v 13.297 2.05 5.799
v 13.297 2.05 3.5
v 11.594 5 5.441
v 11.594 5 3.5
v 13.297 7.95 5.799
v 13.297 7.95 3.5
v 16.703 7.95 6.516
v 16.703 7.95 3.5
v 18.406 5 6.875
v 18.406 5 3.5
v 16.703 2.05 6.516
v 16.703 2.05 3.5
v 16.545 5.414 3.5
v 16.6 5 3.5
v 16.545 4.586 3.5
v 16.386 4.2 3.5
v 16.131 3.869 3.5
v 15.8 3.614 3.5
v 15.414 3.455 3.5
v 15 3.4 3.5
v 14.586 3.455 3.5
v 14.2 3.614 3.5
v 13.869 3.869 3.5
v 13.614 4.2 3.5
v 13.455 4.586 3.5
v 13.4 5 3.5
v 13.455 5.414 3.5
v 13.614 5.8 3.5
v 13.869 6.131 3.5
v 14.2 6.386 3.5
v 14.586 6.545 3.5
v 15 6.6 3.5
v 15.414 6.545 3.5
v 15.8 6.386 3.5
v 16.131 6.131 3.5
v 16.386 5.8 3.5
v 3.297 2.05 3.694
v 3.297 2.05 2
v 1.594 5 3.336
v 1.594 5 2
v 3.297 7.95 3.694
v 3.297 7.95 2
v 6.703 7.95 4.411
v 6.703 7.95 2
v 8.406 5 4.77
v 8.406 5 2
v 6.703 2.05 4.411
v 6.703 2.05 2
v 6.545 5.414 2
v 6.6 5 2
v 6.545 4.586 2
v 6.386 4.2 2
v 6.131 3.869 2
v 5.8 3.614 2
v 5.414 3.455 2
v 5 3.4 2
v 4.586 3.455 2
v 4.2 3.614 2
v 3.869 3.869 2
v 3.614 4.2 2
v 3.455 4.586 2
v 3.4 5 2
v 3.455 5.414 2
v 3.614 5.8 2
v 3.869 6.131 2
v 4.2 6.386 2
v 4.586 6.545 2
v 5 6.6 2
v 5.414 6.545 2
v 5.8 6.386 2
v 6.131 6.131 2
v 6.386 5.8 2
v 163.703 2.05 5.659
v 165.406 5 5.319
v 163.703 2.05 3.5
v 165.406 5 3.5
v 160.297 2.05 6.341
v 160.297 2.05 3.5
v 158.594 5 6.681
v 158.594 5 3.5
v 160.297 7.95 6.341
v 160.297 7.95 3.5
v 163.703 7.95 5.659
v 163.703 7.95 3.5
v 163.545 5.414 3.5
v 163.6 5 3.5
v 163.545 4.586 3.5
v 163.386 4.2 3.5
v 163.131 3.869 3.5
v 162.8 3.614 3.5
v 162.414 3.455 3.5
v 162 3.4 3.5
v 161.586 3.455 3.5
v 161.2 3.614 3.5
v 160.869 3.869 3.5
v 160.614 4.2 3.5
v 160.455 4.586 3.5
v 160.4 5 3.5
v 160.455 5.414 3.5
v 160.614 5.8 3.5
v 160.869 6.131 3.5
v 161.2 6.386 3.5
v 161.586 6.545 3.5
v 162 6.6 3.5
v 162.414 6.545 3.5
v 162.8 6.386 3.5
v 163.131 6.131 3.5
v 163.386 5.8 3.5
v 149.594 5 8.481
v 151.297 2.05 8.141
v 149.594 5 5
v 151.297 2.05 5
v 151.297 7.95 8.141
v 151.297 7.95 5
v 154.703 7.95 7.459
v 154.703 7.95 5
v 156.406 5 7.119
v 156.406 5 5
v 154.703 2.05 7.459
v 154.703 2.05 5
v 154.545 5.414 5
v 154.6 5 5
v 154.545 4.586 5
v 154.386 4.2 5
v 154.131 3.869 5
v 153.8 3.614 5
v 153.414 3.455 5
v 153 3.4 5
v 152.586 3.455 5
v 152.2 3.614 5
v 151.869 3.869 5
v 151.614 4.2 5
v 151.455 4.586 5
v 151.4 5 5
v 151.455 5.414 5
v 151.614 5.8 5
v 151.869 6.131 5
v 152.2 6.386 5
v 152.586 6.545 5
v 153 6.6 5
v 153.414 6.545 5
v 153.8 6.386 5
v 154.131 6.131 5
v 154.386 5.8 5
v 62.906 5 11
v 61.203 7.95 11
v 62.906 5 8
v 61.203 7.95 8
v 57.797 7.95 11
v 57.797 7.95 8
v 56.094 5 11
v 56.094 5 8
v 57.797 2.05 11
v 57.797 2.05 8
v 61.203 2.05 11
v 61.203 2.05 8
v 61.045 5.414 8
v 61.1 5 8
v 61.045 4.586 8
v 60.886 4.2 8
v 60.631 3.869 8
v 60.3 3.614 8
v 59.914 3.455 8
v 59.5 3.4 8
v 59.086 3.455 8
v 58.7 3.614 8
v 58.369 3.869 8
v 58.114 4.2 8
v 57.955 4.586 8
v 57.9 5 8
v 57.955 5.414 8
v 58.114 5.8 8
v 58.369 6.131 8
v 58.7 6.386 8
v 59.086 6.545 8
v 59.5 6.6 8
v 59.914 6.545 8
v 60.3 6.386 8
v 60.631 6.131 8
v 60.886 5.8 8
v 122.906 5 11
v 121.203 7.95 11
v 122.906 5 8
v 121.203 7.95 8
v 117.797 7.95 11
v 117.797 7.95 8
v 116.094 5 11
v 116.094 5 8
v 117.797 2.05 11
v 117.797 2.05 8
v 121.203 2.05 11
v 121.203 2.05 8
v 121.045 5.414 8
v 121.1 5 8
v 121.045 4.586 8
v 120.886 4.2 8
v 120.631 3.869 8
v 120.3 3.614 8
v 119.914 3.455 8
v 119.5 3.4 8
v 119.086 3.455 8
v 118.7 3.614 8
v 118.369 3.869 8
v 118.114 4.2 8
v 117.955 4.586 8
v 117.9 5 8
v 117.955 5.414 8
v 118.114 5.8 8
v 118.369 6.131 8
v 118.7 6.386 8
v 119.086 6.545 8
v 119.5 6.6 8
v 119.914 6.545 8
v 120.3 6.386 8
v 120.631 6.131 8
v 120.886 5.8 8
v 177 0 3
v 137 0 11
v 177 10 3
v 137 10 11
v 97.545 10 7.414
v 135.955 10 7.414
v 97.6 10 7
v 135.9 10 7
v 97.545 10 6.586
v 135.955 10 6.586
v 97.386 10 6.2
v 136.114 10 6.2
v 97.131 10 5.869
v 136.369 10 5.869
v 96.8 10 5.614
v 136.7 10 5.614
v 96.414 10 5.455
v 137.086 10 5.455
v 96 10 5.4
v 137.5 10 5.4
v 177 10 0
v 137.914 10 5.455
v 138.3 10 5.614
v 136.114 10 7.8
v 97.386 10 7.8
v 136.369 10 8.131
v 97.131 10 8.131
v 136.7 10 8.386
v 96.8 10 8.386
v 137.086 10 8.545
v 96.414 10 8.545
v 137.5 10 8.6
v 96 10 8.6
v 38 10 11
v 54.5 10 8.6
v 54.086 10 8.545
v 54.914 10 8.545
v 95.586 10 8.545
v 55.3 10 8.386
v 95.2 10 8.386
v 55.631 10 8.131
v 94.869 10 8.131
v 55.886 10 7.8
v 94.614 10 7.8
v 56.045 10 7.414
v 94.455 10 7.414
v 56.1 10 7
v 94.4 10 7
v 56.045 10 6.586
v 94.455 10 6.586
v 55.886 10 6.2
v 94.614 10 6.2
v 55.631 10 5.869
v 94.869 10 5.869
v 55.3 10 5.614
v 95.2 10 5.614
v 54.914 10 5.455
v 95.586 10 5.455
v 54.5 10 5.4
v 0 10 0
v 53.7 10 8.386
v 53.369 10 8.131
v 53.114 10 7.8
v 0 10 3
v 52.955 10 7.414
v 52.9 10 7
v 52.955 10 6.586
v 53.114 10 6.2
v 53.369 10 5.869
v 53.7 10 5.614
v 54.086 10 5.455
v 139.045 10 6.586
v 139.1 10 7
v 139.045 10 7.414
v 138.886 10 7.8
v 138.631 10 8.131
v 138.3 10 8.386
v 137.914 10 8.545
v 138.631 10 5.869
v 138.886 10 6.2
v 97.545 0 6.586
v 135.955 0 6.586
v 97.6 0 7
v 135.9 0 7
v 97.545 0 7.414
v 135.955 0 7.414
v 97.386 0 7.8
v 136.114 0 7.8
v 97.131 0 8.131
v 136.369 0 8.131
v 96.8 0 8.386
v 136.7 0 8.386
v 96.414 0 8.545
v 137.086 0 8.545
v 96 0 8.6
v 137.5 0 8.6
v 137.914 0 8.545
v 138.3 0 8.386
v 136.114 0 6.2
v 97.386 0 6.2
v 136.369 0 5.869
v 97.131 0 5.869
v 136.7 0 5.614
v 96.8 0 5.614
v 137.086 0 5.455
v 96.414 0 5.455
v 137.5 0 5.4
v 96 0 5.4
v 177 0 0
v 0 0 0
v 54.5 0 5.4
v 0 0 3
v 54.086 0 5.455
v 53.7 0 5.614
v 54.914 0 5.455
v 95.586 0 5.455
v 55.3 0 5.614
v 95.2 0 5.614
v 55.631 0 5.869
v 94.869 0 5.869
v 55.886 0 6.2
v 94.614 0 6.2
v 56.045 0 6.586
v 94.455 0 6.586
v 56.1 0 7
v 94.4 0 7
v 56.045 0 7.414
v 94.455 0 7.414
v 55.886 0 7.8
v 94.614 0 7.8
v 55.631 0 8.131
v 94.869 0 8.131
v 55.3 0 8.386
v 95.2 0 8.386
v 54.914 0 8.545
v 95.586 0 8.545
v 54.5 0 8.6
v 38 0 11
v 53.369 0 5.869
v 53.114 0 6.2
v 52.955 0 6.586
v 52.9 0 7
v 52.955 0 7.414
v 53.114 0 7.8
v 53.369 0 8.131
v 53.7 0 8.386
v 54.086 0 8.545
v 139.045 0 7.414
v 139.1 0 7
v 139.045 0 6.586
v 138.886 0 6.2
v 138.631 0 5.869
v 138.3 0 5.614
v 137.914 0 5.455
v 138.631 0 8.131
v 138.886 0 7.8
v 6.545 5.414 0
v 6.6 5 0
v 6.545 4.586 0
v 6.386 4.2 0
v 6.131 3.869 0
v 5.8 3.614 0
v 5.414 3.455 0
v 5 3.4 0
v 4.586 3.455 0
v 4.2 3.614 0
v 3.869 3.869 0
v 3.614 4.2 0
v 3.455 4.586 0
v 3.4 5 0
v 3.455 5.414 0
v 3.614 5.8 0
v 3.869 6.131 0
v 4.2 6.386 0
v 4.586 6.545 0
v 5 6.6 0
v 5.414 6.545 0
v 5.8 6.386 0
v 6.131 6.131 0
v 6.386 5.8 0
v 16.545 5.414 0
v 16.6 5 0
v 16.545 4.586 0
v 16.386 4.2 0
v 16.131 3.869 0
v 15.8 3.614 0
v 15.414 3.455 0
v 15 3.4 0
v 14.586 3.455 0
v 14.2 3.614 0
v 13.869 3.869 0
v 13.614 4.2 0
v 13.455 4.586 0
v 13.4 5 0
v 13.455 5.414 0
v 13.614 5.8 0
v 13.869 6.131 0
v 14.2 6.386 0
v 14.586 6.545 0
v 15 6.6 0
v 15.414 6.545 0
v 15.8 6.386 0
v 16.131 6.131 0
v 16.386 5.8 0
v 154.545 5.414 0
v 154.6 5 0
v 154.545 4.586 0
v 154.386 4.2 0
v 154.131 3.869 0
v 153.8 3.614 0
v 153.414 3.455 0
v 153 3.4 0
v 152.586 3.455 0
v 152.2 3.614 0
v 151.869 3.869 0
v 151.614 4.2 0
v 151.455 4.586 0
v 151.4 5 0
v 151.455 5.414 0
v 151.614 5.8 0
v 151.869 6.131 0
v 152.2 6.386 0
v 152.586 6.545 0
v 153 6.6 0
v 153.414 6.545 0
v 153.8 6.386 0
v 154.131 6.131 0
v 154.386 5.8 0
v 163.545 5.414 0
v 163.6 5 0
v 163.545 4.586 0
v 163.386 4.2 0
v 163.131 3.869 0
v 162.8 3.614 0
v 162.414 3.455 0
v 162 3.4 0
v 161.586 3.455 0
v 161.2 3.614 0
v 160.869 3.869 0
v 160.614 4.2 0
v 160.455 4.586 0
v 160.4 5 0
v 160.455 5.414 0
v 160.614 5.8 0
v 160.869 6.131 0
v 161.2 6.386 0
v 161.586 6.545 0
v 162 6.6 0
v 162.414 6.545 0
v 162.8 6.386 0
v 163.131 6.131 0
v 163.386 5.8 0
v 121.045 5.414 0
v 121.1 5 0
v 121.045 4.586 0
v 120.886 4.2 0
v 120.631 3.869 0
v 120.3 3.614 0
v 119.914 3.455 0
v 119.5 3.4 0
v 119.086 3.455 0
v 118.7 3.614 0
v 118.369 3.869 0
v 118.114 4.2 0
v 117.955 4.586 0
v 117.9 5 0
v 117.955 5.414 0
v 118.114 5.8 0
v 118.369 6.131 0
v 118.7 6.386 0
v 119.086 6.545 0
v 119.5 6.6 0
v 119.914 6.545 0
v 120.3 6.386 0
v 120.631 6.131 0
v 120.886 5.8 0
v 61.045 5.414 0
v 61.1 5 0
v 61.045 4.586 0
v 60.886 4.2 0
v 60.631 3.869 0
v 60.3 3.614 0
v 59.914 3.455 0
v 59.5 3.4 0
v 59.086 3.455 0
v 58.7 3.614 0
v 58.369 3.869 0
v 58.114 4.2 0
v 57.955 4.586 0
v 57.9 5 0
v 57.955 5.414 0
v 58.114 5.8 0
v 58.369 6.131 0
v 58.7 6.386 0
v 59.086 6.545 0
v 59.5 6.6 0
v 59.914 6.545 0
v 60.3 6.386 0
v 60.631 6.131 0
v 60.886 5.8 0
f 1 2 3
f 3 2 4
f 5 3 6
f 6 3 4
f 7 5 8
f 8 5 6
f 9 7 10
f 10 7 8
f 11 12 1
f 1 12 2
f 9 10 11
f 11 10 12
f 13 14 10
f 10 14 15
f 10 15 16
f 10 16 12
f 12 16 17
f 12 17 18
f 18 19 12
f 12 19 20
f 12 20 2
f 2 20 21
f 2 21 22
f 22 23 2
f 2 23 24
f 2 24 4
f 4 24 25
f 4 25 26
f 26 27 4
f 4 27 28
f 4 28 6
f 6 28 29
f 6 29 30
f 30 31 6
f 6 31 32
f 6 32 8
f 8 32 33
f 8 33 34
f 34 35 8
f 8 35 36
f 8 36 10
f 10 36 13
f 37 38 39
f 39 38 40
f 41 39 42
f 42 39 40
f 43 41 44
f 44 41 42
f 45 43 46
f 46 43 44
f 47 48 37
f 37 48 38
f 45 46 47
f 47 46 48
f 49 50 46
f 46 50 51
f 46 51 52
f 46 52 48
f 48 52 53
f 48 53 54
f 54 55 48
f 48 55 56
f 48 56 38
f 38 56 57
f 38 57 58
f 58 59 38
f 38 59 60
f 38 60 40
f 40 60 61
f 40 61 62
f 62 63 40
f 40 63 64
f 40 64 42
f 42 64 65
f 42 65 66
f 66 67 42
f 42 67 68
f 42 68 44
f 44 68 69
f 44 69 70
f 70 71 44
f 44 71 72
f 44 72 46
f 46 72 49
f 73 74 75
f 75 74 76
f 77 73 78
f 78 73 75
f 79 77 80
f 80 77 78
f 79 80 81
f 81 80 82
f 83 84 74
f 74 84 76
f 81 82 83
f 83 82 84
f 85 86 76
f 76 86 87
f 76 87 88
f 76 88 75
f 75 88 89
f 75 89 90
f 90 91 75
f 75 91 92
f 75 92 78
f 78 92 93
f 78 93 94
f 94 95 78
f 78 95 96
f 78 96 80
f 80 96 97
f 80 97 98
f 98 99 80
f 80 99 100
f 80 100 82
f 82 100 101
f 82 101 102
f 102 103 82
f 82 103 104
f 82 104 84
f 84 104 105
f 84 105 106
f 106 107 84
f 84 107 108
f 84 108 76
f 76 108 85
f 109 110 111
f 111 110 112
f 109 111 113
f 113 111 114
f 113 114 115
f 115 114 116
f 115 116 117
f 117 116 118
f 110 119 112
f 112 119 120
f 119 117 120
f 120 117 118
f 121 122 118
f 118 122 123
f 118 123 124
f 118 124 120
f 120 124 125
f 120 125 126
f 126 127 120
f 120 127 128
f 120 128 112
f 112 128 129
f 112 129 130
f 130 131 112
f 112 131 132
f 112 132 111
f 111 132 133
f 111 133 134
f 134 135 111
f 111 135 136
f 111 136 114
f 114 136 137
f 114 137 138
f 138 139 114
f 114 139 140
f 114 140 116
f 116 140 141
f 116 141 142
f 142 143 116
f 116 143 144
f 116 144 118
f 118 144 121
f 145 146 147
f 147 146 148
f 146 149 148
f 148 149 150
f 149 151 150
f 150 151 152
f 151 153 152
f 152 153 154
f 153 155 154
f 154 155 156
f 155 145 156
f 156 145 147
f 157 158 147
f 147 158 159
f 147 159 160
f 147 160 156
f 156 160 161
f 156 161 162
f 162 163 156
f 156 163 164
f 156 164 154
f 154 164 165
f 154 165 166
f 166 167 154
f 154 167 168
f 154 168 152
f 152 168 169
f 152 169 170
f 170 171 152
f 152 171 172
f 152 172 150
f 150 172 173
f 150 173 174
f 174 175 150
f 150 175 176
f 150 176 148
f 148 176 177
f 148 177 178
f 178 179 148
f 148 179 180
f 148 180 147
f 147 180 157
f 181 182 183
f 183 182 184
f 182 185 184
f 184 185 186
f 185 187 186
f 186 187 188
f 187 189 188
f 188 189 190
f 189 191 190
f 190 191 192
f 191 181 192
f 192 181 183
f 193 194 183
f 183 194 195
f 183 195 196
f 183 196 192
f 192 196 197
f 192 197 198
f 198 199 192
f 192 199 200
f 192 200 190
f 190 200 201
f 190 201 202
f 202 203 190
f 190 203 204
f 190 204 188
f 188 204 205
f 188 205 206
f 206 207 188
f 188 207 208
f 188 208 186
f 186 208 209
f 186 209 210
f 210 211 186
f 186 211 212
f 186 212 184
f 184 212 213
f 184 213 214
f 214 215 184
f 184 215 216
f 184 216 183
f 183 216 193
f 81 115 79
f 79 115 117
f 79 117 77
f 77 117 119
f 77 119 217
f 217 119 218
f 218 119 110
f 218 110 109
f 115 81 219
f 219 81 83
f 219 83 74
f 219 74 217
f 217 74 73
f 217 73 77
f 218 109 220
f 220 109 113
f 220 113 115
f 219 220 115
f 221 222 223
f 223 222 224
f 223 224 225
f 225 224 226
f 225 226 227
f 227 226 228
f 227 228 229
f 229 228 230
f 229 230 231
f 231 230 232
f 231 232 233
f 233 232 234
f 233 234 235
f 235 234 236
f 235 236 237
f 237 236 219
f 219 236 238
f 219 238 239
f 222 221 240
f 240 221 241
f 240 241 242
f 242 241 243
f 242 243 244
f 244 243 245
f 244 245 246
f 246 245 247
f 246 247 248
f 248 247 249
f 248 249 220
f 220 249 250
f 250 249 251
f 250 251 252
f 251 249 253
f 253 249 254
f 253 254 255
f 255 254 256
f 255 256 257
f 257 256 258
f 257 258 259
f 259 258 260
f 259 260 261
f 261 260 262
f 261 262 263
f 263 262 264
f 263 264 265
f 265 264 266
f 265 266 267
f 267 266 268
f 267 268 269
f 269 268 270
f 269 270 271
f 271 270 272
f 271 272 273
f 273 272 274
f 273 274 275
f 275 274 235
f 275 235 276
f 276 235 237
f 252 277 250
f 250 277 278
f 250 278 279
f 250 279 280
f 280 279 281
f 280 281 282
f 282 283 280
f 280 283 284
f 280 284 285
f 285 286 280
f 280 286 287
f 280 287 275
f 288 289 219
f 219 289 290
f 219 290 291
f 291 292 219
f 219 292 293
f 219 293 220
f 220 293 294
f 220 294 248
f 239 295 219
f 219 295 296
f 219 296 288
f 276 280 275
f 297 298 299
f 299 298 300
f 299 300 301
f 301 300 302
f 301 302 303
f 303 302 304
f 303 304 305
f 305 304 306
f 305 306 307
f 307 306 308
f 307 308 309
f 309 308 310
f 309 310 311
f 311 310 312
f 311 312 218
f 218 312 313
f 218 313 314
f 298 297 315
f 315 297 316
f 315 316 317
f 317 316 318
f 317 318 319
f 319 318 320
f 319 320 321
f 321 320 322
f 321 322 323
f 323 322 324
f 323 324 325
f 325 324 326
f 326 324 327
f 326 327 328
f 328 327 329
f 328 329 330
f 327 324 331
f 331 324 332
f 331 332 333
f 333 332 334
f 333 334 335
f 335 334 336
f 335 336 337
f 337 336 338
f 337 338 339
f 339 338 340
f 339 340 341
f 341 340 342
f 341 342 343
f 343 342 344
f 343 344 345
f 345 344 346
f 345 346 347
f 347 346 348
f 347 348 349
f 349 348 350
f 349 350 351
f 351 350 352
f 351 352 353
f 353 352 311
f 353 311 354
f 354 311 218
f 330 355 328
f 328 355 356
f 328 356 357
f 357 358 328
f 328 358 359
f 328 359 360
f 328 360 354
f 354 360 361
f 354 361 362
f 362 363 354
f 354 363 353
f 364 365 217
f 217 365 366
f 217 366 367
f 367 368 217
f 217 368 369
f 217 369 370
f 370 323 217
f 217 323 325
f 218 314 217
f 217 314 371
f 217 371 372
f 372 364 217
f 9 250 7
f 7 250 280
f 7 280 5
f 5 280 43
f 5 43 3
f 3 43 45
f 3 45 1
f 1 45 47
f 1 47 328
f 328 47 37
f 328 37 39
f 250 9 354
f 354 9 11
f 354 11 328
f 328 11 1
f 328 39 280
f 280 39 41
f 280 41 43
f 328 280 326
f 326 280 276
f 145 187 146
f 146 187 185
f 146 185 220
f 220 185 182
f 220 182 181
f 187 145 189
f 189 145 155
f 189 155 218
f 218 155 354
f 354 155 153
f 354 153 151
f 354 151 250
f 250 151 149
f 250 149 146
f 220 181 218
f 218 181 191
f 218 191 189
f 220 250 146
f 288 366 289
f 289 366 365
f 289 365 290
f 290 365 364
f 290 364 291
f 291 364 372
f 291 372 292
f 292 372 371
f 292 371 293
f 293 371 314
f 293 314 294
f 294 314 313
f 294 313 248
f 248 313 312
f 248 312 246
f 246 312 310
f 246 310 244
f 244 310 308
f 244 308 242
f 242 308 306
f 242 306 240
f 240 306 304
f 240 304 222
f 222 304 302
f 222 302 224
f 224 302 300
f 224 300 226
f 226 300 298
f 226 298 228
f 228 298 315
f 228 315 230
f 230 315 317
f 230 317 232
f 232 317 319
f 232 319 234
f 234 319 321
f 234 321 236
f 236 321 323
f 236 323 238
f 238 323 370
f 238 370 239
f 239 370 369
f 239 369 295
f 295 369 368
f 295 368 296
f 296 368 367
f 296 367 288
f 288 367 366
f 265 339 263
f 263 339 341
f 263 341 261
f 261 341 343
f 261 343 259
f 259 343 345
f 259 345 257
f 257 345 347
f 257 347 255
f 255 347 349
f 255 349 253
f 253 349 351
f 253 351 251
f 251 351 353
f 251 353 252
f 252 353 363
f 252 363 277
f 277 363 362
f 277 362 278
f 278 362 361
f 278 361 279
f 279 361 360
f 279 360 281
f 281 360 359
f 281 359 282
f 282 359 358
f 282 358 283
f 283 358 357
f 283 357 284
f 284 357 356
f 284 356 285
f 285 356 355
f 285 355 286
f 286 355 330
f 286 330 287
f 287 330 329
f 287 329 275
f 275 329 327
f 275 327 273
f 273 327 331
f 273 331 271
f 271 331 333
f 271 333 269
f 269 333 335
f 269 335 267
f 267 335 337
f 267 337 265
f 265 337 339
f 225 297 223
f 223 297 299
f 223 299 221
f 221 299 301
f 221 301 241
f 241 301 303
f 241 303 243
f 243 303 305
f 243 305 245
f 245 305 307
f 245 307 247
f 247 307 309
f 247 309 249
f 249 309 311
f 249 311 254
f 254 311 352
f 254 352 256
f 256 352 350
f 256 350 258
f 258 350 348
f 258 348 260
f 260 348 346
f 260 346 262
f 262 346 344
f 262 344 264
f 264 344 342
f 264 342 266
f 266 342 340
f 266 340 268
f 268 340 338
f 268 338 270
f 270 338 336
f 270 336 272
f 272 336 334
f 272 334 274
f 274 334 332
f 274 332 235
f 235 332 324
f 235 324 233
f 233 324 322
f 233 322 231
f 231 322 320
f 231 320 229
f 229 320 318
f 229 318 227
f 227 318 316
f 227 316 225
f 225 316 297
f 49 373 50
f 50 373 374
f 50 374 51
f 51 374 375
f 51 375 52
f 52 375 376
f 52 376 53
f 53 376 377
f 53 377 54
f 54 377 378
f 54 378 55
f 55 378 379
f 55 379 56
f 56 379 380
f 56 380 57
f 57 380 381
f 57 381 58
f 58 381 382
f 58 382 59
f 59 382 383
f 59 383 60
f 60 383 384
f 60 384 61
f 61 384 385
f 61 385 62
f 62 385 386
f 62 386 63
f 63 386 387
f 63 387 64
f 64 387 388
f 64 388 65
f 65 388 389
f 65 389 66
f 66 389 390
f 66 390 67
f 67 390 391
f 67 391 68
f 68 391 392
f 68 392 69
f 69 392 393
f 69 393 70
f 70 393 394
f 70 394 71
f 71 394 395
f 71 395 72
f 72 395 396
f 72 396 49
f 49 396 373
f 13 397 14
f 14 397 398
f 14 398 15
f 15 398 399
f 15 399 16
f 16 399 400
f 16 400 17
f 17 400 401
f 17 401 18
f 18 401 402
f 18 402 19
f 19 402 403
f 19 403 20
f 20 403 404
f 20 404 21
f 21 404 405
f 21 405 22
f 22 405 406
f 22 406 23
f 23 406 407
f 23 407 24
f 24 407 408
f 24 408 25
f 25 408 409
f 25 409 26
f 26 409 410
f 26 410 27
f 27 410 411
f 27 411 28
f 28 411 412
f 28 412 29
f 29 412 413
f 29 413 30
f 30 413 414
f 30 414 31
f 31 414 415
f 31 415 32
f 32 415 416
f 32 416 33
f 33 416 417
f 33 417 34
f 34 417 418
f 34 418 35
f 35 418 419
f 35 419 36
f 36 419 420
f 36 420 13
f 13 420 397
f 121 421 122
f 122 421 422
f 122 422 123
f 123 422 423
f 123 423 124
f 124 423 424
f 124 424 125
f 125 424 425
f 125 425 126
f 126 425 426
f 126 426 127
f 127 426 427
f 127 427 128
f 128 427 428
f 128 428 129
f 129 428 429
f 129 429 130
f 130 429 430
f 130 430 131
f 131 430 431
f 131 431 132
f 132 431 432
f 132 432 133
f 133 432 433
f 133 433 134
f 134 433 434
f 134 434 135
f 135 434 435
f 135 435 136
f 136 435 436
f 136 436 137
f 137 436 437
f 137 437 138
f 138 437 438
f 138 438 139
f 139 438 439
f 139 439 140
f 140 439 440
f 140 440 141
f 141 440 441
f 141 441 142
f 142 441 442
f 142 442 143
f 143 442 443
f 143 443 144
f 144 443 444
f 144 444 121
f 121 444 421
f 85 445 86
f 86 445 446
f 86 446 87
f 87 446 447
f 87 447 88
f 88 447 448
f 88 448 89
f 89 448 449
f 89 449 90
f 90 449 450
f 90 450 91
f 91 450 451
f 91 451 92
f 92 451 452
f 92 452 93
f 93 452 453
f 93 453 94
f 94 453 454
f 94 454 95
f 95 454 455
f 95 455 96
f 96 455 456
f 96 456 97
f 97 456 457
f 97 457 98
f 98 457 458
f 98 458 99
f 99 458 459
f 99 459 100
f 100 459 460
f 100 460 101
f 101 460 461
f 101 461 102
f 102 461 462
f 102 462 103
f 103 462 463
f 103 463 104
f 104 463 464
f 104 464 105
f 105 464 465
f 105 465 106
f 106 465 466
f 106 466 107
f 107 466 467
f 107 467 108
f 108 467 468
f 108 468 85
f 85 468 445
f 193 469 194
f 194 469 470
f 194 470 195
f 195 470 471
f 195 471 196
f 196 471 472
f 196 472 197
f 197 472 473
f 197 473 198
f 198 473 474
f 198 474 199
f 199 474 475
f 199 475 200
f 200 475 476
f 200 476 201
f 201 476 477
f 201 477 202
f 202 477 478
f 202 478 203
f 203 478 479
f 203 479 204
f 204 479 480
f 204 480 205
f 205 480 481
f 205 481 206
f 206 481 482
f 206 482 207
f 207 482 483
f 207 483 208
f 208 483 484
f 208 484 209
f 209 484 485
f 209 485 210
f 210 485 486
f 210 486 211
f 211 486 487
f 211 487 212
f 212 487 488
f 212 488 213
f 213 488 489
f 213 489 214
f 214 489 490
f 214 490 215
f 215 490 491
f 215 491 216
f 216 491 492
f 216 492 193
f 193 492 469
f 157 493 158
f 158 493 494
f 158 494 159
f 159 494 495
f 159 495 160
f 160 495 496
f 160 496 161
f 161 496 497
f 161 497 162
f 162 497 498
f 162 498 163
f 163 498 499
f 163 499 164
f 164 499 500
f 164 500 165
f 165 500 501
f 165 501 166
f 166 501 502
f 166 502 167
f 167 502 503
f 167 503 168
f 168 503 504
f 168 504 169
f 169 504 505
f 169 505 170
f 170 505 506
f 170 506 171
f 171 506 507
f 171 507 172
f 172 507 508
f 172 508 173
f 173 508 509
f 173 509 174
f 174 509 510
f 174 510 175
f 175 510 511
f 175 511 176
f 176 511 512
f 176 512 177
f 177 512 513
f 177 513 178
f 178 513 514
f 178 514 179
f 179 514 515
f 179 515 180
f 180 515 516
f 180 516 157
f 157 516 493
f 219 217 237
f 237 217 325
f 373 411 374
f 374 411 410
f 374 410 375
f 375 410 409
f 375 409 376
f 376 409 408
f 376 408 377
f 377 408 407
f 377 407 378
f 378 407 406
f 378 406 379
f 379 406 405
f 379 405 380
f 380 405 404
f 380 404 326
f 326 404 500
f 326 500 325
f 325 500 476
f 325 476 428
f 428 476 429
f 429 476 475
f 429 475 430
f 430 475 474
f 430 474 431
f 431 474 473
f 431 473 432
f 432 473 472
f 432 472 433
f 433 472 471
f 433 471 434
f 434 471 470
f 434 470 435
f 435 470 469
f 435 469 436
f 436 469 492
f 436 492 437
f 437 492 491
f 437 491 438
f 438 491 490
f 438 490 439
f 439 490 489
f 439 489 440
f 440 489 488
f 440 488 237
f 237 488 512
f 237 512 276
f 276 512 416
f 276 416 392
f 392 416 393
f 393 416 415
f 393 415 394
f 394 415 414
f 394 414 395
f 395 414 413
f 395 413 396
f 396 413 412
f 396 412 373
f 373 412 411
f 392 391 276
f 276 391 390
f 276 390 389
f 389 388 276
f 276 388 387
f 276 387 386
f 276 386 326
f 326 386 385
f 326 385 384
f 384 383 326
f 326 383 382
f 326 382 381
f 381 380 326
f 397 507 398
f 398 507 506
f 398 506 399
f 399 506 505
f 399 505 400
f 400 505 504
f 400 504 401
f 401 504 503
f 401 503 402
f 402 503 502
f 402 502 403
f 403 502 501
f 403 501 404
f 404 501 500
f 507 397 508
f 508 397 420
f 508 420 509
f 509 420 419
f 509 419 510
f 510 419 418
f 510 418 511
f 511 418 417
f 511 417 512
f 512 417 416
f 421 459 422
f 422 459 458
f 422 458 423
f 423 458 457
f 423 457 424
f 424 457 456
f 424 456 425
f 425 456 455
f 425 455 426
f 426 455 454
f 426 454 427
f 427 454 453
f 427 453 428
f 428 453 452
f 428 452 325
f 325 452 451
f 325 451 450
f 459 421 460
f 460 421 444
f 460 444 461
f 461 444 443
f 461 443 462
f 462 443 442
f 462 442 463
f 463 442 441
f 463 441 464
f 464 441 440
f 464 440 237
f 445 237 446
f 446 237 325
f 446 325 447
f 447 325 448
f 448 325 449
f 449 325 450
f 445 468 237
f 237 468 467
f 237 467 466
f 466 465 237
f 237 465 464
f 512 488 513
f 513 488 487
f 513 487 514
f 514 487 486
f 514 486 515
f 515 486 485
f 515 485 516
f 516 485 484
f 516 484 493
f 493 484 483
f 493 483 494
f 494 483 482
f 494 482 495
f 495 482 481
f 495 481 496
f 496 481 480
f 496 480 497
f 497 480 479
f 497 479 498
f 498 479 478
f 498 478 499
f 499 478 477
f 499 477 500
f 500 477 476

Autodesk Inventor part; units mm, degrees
ref_plane "YZ Plane" through (0, 0, 0) normal (1, 0, 0) x (0, 1, 0)
ref_plane "XZ Plane" through (0, 0, 0) normal (0, 1, 0) x (-1, 0, 0)
ref_plane "XY Plane" through (0, 0, 0) normal (0, 0, 1) x (1, 0, 0)
sketch "Sketch1" plane through (0, 0, 0) normal (0, 0, 1) x (1, 0, 0)
  line L0 (0, 0) -> (177, 0)
  line L1 (177, 0) -> (177, 10)
  line L2 (177, 10) -> (0, 10)
  line L3 (0, 10) -> (0, 0)
  circle A0 centre (59.5, 5) radius 1.6
  circle A1 centre (119.5, 5) radius 1.6
  circle A2 centre (162, 5) radius 1.6
  circle A3 centre (153, 5) radius 1.6
  circle A4 centre (15, 5) radius 1.6
  circle A5 centre (5, 5) radius 1.6
  dimension "d1" = 10
  dimension "d2" = 90
  dimension "d4" = 3.2
  dimension "d6" = 3.2
  dimension "d7" = 3.2
  dimension "d8" = 60
  dimension "d9" = 42.5
  dimension "d26" = 3.2
  dimension "d27" = 33.5
  dimension "d28" = 3.2
  dimension "d29" = 44.5
  dimension "d32" = 15
  dimension "d33" = 15
  dimension "d61" = 3.2
  dimension "d62" = 10
  dimension "d63" = 9
ref_plane "Work Plane2" through (0, 0, 0) normal (0, -1, 0) x (1, 0, 0)
sketch "Sketch2" plane through (0, 0, 0) normal (0, -1, 0) x (1, 0, 0)
  circle A0 centre (54.5, 7) radius 1.6
  circle A1 centre (137.5, 7) radius 1.6
  circle A2 centre (96, 7) radius 1.6
  point P0 (0, 0)
  dimension "d13" = 3.2
  dimension "d15" = 3.2
  dimension "d16" = 83
  dimension "d17" = 3.2
  dimension "d18" = 41.5
  dimension "d64" = 54.5
  dimension "d65" = 41.5
ref_plane "Work Plane1" through (0, 0, 11) normal (0, 0, 1) x (1, 0, 0)
extrude "klocek" add sketch "Sketch1" along normal blind 11
ref_plane "Work Plane3" through (0, 0, 0) normal (0, -1, 0) x (1, 0, 0)
extrude "prowadzenie osi" cut sketch "Sketch2" against normal up to next
ref_plane "Work Plane4" through (0, 0, 0) normal (0, -1, 0) x (1, 0, 0)
sketch "Sketch7" plane through (0, 0, 0) normal (0, -1, 0) x (1, 0, 0)
  line L0 (0, 11) -> (0, 3)
  line L1 (0, 11) -> (177, 11) projected
  line L2 (0, 11) -> (38, 11)
  line L3 (38, 11) -> (0, 3)
  point P0 (0, -1.8333)
  dimension "d86" = 8
  dimension "d87" = 38
sketch "Sketch8" plane through (0, 0, 0) normal (0, -1, 0) x (1, 0, 0)
  line L0 (177, 0) -> (177, 11) projected
  line L1 (177, 11) -> (177, 3)
  line L2 (177, 11) -> (0, 11) projected
  line L3 (177, 11) -> (137, 11)
  line L4 (137, 11) -> (177, 3)
  point P0 (0, 0)
  point P1 (40.8333, 11)
  dimension "d80" = 8
  dimension "d81" = 40
extrude "przedni skos" cut sketch "Sketch7" against normal up to next
extrude "tylni skos" cut sketch "Sketch8" against normal up to next
ref_plane "Work Plane7" through (0, 0, 11) normal (0, 0, 1) x (1, 0, 0)
sketch "Sketch5" plane through (0, 0, 11) normal (0, 0, 1) x (1, 0, 0)
  line L0 (62.9064, 5) -> (61.2032, 2.05)
  line L1 (61.2032, 2.05) -> (57.7968, 2.05)
  line L2 (57.7968, 2.05) -> (56.0936, 5)
  line L3 (56.0936, 5) -> (57.7968, 7.95)
  line L4 (57.7968, 7.95) -> (61.2032, 7.95)
  line L5 (61.2032, 7.95) -> (62.9064, 5)
  line L6 (122.9064, 5) -> (121.2032, 2.05)
  line L7 (121.2032, 2.05) -> (117.7968, 2.05)
  line L8 (117.7968, 2.05) -> (116.0936, 5)
  line L9 (116.0936, 5) -> (117.7968, 7.95)
  line L10 (117.7968, 7.95) -> (121.2032, 7.95)
  line L11 (121.2032, 7.95) -> (122.9064, 5)
  point P0 (59.5, 5)
  point P1 (119.5, 5)
  point P2 (119.5, 5)
  dimension "d44" = 5.9
  dimension "d45" = 5.9
extrude "hex insert middle" cut sketch "Sketch5" against normal blind 3
ref_plane "Work Plane6" through (0, 0, 11) normal (0, 0, 1) x (1, 0, 0)
sketch "Sketch9" plane through (0, 0, 11) normal (0, 0, 1) x (1, 0, 0)
  line L0 (156.4064, 5) -> (154.7032, 2.05)
  line L1 (154.7032, 2.05) -> (151.2968, 2.05)
  line L2 (151.2968, 2.05) -> (149.5936, 5)
  line L3 (149.5936, 5) -> (151.2968, 7.95)
  line L4 (151.2968, 7.95) -> (154.7032, 7.95)
  line L5 (154.7032, 7.95) -> (156.4064, 5)
  point P0 (0, 0)
  point P1 (153, 5)
  point P2 (153, 5)
  dimension "d51" = 5.9
extrude "hex insert rear 1" cut sketch "Sketch9" against normal blind 6
ref_plane "Work Plane5" through (0, 0, 11) normal (0, 0, 1) x (1, 0, 0)
sketch "Sketch10" plane through (0, 0, 11) normal (0, 0, 1) x (1, 0, 0)
  line L0 (160.2968, 7.95) -> (163.7032, 7.95)
  line L1 (163.7032, 7.95) -> (165.4064, 5)
  line L2 (165.4064, 5) -> (163.7032, 2.05)
  line L3 (163.7032, 2.05) -> (160.2968, 2.05)
  line L4 (160.2968, 2.05) -> (158.5936, 5)
  line L5 (158.5936, 5) -> (160.2968, 7.95)
  point P0 (0, 0)
  point P1 (162, 5)
  point P2 (162, 5)
  dimension "d72" = 5.9
extrude "hex insert rear 2" cut sketch "Sketch10" against normal blind 7.5
sketch "Sketch13" plane through (0, 0, 11) normal (0, 0, 1) x (1, 0, 0)
  circle A0 centre (5, 5) radius 1.6 projected
  line L0 (8.4064, 5) -> (6.7032, 2.05)
  line L1 (6.7032, 2.05) -> (3.2968, 2.05)
  line L2 (3.2968, 2.05) -> (1.5936, 5)
  line L3 (1.5936, 5) -> (3.2968, 7.95)
  line L4 (3.2968, 7.95) -> (6.7032, 7.95)
  line L5 (6.7032, 7.95) -> (8.4064, 5)
  point P0 (0, 0)
  dimension "d90" = 5.9
extrude "Extrusion18" cut sketch "Sketch13" against normal blind 9
sketch "Sketch16" plane through (0, 0, 11) normal (0, 0, 1) x (1, 0, 0)
  circle A0 centre (15, 5) radius 1.6 projected
  line L0 (18.4064, 5) -> (16.7032, 2.05)
  line L1 (16.7032, 2.05) -> (13.2968, 2.05)
  line L2 (13.2968, 2.05) -> (11.5936, 5)
  line L3 (11.5936, 5) -> (13.2968, 7.95)
  line L4 (13.2968, 7.95) -> (16.7032, 7.95)
  line L5 (16.7032, 7.95) -> (18.4064, 5)
  point P0 (0, 0)
  dimension "d93" = 5.9
extrude "Extrusion19" cut sketch "Sketch16" against normal blind 7.5
properties part number "wheel_support_long"
